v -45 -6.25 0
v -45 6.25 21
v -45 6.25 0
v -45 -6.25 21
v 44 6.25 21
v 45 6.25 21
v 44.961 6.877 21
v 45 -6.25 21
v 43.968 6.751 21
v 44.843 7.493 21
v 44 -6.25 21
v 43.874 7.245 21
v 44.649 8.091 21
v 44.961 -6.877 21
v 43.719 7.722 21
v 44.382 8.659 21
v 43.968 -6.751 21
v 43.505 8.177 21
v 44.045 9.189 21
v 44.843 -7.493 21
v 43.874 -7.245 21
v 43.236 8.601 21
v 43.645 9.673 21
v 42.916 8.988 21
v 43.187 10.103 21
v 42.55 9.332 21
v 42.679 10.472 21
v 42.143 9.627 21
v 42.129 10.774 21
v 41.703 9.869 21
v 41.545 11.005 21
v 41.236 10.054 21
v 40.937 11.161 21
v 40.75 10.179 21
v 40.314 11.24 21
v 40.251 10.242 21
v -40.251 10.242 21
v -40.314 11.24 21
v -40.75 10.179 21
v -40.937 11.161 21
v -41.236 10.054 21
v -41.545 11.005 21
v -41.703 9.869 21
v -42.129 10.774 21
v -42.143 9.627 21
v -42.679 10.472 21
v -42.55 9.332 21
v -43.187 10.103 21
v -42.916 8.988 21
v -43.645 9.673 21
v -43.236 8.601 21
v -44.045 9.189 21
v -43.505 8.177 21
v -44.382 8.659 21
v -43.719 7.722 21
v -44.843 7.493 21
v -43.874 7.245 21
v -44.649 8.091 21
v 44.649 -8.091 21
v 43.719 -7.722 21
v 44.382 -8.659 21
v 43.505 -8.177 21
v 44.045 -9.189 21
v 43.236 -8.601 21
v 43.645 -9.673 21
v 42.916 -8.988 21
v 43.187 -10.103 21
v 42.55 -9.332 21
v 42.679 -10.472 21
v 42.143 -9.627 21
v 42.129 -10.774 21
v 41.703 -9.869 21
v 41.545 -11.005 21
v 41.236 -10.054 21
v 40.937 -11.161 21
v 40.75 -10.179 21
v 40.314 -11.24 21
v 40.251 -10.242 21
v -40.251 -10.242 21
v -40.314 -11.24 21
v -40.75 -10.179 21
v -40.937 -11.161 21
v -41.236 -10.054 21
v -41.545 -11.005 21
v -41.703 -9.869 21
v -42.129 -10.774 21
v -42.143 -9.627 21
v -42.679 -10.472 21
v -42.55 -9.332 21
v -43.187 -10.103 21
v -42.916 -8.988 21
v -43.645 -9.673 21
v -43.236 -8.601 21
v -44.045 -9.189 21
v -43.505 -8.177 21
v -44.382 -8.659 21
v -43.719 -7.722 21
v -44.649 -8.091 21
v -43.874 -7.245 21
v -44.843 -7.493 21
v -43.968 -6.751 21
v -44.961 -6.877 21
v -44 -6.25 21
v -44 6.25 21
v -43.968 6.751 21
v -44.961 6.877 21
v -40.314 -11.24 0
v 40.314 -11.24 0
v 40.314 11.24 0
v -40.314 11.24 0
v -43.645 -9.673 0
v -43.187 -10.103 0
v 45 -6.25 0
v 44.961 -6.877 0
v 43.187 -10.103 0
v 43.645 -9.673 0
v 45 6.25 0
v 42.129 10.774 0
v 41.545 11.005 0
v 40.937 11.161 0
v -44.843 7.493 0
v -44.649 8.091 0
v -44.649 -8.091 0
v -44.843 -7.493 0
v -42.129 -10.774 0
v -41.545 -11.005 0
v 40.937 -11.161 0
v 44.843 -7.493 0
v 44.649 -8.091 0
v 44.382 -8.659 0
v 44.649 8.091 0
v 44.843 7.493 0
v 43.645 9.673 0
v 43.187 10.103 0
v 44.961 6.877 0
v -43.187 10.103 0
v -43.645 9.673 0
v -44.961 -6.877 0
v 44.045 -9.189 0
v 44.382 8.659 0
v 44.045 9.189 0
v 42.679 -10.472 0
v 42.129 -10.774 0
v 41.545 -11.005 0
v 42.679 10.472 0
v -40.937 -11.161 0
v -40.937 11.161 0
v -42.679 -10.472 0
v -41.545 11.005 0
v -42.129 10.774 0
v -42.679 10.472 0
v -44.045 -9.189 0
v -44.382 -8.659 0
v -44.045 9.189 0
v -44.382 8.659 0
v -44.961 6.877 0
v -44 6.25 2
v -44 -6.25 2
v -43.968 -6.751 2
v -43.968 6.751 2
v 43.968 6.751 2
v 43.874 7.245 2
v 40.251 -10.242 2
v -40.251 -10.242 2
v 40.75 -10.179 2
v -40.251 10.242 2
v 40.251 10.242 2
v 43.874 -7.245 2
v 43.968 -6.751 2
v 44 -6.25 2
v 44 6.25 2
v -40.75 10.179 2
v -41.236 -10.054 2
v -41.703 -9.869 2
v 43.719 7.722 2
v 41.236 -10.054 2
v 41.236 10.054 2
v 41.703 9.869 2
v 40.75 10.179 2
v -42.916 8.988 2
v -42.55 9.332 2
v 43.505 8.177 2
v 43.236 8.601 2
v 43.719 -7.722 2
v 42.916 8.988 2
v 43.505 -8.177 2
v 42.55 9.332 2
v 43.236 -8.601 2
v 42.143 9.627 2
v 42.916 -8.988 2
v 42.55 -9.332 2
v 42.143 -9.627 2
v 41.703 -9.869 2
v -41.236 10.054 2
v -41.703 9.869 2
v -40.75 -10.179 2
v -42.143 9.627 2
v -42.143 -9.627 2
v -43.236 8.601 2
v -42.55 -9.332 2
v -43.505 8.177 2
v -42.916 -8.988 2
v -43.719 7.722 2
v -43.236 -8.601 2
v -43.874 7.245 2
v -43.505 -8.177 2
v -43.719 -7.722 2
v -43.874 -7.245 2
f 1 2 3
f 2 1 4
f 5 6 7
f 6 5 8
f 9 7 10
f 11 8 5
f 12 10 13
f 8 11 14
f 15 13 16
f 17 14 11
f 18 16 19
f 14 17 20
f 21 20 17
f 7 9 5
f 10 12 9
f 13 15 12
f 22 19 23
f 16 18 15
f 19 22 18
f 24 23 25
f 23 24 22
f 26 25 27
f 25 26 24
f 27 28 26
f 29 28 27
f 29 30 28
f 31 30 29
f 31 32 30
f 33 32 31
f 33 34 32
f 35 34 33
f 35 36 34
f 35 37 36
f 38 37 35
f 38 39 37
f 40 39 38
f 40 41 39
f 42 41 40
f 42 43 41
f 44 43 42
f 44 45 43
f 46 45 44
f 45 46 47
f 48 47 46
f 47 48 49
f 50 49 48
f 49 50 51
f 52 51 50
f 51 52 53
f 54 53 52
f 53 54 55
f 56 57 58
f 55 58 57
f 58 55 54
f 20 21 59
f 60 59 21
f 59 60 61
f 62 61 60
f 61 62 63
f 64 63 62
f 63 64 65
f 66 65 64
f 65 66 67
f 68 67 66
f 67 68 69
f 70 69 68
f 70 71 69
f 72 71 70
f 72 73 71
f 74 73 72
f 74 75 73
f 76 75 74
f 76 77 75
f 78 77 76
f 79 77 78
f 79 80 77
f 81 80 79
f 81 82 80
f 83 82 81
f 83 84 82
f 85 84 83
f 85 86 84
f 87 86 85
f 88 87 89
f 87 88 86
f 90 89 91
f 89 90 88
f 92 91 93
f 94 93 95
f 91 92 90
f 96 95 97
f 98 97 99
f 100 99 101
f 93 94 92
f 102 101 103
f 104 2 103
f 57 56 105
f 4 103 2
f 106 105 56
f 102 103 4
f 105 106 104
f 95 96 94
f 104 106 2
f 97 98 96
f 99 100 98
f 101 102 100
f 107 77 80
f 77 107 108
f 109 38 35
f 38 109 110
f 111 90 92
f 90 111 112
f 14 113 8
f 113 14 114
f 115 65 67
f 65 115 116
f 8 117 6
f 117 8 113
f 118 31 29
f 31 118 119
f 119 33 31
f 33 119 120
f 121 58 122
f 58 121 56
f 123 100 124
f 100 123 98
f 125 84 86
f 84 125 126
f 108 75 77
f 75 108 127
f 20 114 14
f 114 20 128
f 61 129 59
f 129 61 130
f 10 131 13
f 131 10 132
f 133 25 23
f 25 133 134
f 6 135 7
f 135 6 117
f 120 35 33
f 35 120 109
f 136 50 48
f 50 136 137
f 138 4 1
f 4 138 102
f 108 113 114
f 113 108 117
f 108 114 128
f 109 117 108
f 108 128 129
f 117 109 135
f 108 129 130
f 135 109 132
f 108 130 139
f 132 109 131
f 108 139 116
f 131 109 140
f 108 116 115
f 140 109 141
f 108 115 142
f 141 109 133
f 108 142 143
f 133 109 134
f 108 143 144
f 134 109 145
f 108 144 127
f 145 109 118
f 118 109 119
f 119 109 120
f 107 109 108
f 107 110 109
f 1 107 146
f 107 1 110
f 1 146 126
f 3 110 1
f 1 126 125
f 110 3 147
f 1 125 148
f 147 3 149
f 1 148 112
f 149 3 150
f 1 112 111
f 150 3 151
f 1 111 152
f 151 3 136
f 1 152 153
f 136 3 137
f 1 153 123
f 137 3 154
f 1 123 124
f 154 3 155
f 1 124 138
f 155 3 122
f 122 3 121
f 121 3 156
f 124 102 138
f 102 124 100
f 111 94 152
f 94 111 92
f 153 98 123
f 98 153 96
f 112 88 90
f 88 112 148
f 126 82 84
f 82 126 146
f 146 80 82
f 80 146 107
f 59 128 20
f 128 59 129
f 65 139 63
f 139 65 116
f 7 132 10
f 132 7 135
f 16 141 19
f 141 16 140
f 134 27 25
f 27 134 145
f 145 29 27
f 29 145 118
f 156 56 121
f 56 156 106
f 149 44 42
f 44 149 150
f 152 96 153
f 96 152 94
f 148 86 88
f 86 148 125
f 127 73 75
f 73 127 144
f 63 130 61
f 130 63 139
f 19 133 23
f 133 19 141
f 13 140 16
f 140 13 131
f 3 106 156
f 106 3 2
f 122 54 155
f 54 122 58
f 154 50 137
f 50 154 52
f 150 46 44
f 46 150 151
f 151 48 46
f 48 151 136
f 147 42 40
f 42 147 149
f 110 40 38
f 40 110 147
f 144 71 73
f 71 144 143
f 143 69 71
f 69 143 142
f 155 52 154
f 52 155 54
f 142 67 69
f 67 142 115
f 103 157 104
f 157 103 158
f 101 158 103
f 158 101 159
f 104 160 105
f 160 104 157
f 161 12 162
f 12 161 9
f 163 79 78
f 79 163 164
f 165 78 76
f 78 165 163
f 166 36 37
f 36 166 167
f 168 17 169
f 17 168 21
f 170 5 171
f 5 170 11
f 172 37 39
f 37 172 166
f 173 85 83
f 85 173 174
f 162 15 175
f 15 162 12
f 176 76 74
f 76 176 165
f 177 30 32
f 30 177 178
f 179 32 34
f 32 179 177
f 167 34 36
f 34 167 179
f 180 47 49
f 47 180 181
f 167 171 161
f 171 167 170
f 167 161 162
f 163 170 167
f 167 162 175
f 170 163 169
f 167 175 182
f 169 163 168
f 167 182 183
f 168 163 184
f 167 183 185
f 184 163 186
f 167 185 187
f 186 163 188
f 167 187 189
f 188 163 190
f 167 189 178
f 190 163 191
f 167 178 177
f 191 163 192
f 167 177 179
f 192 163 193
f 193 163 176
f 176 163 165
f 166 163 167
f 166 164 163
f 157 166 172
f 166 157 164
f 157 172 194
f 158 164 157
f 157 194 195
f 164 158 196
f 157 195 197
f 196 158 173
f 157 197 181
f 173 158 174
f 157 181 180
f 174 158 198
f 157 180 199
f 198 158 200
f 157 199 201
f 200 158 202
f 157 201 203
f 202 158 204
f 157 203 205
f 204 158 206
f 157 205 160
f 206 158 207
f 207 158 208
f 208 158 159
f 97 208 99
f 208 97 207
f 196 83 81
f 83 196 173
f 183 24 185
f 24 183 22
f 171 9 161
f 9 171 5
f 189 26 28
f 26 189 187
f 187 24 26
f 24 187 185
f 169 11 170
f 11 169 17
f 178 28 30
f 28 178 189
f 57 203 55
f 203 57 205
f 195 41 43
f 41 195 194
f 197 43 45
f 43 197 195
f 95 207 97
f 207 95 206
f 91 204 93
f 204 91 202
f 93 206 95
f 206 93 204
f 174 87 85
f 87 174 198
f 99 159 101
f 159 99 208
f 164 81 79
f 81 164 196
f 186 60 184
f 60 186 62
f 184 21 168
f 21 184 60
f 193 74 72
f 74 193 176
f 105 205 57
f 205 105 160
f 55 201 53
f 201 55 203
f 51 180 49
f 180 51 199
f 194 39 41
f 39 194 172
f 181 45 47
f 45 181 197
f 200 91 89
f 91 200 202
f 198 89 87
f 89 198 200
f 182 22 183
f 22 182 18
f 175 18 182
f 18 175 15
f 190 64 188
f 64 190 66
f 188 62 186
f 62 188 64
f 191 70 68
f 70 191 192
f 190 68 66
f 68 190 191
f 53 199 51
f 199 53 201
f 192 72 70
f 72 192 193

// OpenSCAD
$fn = 50;


difference() {
	union() {
		hull() {
			translate(v = [-40.0000000000, 6.2500000000, 0]) {
				cylinder(h = 21, r = 5);
			}
			translate(v = [40.0000000000, 6.2500000000, 0]) {
				cylinder(h = 21, r = 5);
			}
			translate(v = [-40.0000000000, -6.2500000000, 0]) {
				cylinder(h = 21, r = 5);
			}
			translate(v = [40.0000000000, -6.2500000000, 0]) {
				cylinder(h = 21, r = 5);
			}
		}
	}
	union() {
		translate(v = [0, 0, 2]) {
			hull() {
				translate(v = [-40.0000000000, 6.2500000000, 0]) {
					cylinder(h = 19, r = 4);
				}
				translate(v = [40.0000000000, 6.2500000000, 0]) {
					cylinder(h = 19, r = 4);
				}
				translate(v = [-40.0000000000, -6.2500000000, 0]) {
					cylinder(h = 19, r = 4);
				}
				translate(v = [40.0000000000, -6.2500000000, 0]) {
					cylinder(h = 19, r = 4);
				}
			}
		}
	}
}
